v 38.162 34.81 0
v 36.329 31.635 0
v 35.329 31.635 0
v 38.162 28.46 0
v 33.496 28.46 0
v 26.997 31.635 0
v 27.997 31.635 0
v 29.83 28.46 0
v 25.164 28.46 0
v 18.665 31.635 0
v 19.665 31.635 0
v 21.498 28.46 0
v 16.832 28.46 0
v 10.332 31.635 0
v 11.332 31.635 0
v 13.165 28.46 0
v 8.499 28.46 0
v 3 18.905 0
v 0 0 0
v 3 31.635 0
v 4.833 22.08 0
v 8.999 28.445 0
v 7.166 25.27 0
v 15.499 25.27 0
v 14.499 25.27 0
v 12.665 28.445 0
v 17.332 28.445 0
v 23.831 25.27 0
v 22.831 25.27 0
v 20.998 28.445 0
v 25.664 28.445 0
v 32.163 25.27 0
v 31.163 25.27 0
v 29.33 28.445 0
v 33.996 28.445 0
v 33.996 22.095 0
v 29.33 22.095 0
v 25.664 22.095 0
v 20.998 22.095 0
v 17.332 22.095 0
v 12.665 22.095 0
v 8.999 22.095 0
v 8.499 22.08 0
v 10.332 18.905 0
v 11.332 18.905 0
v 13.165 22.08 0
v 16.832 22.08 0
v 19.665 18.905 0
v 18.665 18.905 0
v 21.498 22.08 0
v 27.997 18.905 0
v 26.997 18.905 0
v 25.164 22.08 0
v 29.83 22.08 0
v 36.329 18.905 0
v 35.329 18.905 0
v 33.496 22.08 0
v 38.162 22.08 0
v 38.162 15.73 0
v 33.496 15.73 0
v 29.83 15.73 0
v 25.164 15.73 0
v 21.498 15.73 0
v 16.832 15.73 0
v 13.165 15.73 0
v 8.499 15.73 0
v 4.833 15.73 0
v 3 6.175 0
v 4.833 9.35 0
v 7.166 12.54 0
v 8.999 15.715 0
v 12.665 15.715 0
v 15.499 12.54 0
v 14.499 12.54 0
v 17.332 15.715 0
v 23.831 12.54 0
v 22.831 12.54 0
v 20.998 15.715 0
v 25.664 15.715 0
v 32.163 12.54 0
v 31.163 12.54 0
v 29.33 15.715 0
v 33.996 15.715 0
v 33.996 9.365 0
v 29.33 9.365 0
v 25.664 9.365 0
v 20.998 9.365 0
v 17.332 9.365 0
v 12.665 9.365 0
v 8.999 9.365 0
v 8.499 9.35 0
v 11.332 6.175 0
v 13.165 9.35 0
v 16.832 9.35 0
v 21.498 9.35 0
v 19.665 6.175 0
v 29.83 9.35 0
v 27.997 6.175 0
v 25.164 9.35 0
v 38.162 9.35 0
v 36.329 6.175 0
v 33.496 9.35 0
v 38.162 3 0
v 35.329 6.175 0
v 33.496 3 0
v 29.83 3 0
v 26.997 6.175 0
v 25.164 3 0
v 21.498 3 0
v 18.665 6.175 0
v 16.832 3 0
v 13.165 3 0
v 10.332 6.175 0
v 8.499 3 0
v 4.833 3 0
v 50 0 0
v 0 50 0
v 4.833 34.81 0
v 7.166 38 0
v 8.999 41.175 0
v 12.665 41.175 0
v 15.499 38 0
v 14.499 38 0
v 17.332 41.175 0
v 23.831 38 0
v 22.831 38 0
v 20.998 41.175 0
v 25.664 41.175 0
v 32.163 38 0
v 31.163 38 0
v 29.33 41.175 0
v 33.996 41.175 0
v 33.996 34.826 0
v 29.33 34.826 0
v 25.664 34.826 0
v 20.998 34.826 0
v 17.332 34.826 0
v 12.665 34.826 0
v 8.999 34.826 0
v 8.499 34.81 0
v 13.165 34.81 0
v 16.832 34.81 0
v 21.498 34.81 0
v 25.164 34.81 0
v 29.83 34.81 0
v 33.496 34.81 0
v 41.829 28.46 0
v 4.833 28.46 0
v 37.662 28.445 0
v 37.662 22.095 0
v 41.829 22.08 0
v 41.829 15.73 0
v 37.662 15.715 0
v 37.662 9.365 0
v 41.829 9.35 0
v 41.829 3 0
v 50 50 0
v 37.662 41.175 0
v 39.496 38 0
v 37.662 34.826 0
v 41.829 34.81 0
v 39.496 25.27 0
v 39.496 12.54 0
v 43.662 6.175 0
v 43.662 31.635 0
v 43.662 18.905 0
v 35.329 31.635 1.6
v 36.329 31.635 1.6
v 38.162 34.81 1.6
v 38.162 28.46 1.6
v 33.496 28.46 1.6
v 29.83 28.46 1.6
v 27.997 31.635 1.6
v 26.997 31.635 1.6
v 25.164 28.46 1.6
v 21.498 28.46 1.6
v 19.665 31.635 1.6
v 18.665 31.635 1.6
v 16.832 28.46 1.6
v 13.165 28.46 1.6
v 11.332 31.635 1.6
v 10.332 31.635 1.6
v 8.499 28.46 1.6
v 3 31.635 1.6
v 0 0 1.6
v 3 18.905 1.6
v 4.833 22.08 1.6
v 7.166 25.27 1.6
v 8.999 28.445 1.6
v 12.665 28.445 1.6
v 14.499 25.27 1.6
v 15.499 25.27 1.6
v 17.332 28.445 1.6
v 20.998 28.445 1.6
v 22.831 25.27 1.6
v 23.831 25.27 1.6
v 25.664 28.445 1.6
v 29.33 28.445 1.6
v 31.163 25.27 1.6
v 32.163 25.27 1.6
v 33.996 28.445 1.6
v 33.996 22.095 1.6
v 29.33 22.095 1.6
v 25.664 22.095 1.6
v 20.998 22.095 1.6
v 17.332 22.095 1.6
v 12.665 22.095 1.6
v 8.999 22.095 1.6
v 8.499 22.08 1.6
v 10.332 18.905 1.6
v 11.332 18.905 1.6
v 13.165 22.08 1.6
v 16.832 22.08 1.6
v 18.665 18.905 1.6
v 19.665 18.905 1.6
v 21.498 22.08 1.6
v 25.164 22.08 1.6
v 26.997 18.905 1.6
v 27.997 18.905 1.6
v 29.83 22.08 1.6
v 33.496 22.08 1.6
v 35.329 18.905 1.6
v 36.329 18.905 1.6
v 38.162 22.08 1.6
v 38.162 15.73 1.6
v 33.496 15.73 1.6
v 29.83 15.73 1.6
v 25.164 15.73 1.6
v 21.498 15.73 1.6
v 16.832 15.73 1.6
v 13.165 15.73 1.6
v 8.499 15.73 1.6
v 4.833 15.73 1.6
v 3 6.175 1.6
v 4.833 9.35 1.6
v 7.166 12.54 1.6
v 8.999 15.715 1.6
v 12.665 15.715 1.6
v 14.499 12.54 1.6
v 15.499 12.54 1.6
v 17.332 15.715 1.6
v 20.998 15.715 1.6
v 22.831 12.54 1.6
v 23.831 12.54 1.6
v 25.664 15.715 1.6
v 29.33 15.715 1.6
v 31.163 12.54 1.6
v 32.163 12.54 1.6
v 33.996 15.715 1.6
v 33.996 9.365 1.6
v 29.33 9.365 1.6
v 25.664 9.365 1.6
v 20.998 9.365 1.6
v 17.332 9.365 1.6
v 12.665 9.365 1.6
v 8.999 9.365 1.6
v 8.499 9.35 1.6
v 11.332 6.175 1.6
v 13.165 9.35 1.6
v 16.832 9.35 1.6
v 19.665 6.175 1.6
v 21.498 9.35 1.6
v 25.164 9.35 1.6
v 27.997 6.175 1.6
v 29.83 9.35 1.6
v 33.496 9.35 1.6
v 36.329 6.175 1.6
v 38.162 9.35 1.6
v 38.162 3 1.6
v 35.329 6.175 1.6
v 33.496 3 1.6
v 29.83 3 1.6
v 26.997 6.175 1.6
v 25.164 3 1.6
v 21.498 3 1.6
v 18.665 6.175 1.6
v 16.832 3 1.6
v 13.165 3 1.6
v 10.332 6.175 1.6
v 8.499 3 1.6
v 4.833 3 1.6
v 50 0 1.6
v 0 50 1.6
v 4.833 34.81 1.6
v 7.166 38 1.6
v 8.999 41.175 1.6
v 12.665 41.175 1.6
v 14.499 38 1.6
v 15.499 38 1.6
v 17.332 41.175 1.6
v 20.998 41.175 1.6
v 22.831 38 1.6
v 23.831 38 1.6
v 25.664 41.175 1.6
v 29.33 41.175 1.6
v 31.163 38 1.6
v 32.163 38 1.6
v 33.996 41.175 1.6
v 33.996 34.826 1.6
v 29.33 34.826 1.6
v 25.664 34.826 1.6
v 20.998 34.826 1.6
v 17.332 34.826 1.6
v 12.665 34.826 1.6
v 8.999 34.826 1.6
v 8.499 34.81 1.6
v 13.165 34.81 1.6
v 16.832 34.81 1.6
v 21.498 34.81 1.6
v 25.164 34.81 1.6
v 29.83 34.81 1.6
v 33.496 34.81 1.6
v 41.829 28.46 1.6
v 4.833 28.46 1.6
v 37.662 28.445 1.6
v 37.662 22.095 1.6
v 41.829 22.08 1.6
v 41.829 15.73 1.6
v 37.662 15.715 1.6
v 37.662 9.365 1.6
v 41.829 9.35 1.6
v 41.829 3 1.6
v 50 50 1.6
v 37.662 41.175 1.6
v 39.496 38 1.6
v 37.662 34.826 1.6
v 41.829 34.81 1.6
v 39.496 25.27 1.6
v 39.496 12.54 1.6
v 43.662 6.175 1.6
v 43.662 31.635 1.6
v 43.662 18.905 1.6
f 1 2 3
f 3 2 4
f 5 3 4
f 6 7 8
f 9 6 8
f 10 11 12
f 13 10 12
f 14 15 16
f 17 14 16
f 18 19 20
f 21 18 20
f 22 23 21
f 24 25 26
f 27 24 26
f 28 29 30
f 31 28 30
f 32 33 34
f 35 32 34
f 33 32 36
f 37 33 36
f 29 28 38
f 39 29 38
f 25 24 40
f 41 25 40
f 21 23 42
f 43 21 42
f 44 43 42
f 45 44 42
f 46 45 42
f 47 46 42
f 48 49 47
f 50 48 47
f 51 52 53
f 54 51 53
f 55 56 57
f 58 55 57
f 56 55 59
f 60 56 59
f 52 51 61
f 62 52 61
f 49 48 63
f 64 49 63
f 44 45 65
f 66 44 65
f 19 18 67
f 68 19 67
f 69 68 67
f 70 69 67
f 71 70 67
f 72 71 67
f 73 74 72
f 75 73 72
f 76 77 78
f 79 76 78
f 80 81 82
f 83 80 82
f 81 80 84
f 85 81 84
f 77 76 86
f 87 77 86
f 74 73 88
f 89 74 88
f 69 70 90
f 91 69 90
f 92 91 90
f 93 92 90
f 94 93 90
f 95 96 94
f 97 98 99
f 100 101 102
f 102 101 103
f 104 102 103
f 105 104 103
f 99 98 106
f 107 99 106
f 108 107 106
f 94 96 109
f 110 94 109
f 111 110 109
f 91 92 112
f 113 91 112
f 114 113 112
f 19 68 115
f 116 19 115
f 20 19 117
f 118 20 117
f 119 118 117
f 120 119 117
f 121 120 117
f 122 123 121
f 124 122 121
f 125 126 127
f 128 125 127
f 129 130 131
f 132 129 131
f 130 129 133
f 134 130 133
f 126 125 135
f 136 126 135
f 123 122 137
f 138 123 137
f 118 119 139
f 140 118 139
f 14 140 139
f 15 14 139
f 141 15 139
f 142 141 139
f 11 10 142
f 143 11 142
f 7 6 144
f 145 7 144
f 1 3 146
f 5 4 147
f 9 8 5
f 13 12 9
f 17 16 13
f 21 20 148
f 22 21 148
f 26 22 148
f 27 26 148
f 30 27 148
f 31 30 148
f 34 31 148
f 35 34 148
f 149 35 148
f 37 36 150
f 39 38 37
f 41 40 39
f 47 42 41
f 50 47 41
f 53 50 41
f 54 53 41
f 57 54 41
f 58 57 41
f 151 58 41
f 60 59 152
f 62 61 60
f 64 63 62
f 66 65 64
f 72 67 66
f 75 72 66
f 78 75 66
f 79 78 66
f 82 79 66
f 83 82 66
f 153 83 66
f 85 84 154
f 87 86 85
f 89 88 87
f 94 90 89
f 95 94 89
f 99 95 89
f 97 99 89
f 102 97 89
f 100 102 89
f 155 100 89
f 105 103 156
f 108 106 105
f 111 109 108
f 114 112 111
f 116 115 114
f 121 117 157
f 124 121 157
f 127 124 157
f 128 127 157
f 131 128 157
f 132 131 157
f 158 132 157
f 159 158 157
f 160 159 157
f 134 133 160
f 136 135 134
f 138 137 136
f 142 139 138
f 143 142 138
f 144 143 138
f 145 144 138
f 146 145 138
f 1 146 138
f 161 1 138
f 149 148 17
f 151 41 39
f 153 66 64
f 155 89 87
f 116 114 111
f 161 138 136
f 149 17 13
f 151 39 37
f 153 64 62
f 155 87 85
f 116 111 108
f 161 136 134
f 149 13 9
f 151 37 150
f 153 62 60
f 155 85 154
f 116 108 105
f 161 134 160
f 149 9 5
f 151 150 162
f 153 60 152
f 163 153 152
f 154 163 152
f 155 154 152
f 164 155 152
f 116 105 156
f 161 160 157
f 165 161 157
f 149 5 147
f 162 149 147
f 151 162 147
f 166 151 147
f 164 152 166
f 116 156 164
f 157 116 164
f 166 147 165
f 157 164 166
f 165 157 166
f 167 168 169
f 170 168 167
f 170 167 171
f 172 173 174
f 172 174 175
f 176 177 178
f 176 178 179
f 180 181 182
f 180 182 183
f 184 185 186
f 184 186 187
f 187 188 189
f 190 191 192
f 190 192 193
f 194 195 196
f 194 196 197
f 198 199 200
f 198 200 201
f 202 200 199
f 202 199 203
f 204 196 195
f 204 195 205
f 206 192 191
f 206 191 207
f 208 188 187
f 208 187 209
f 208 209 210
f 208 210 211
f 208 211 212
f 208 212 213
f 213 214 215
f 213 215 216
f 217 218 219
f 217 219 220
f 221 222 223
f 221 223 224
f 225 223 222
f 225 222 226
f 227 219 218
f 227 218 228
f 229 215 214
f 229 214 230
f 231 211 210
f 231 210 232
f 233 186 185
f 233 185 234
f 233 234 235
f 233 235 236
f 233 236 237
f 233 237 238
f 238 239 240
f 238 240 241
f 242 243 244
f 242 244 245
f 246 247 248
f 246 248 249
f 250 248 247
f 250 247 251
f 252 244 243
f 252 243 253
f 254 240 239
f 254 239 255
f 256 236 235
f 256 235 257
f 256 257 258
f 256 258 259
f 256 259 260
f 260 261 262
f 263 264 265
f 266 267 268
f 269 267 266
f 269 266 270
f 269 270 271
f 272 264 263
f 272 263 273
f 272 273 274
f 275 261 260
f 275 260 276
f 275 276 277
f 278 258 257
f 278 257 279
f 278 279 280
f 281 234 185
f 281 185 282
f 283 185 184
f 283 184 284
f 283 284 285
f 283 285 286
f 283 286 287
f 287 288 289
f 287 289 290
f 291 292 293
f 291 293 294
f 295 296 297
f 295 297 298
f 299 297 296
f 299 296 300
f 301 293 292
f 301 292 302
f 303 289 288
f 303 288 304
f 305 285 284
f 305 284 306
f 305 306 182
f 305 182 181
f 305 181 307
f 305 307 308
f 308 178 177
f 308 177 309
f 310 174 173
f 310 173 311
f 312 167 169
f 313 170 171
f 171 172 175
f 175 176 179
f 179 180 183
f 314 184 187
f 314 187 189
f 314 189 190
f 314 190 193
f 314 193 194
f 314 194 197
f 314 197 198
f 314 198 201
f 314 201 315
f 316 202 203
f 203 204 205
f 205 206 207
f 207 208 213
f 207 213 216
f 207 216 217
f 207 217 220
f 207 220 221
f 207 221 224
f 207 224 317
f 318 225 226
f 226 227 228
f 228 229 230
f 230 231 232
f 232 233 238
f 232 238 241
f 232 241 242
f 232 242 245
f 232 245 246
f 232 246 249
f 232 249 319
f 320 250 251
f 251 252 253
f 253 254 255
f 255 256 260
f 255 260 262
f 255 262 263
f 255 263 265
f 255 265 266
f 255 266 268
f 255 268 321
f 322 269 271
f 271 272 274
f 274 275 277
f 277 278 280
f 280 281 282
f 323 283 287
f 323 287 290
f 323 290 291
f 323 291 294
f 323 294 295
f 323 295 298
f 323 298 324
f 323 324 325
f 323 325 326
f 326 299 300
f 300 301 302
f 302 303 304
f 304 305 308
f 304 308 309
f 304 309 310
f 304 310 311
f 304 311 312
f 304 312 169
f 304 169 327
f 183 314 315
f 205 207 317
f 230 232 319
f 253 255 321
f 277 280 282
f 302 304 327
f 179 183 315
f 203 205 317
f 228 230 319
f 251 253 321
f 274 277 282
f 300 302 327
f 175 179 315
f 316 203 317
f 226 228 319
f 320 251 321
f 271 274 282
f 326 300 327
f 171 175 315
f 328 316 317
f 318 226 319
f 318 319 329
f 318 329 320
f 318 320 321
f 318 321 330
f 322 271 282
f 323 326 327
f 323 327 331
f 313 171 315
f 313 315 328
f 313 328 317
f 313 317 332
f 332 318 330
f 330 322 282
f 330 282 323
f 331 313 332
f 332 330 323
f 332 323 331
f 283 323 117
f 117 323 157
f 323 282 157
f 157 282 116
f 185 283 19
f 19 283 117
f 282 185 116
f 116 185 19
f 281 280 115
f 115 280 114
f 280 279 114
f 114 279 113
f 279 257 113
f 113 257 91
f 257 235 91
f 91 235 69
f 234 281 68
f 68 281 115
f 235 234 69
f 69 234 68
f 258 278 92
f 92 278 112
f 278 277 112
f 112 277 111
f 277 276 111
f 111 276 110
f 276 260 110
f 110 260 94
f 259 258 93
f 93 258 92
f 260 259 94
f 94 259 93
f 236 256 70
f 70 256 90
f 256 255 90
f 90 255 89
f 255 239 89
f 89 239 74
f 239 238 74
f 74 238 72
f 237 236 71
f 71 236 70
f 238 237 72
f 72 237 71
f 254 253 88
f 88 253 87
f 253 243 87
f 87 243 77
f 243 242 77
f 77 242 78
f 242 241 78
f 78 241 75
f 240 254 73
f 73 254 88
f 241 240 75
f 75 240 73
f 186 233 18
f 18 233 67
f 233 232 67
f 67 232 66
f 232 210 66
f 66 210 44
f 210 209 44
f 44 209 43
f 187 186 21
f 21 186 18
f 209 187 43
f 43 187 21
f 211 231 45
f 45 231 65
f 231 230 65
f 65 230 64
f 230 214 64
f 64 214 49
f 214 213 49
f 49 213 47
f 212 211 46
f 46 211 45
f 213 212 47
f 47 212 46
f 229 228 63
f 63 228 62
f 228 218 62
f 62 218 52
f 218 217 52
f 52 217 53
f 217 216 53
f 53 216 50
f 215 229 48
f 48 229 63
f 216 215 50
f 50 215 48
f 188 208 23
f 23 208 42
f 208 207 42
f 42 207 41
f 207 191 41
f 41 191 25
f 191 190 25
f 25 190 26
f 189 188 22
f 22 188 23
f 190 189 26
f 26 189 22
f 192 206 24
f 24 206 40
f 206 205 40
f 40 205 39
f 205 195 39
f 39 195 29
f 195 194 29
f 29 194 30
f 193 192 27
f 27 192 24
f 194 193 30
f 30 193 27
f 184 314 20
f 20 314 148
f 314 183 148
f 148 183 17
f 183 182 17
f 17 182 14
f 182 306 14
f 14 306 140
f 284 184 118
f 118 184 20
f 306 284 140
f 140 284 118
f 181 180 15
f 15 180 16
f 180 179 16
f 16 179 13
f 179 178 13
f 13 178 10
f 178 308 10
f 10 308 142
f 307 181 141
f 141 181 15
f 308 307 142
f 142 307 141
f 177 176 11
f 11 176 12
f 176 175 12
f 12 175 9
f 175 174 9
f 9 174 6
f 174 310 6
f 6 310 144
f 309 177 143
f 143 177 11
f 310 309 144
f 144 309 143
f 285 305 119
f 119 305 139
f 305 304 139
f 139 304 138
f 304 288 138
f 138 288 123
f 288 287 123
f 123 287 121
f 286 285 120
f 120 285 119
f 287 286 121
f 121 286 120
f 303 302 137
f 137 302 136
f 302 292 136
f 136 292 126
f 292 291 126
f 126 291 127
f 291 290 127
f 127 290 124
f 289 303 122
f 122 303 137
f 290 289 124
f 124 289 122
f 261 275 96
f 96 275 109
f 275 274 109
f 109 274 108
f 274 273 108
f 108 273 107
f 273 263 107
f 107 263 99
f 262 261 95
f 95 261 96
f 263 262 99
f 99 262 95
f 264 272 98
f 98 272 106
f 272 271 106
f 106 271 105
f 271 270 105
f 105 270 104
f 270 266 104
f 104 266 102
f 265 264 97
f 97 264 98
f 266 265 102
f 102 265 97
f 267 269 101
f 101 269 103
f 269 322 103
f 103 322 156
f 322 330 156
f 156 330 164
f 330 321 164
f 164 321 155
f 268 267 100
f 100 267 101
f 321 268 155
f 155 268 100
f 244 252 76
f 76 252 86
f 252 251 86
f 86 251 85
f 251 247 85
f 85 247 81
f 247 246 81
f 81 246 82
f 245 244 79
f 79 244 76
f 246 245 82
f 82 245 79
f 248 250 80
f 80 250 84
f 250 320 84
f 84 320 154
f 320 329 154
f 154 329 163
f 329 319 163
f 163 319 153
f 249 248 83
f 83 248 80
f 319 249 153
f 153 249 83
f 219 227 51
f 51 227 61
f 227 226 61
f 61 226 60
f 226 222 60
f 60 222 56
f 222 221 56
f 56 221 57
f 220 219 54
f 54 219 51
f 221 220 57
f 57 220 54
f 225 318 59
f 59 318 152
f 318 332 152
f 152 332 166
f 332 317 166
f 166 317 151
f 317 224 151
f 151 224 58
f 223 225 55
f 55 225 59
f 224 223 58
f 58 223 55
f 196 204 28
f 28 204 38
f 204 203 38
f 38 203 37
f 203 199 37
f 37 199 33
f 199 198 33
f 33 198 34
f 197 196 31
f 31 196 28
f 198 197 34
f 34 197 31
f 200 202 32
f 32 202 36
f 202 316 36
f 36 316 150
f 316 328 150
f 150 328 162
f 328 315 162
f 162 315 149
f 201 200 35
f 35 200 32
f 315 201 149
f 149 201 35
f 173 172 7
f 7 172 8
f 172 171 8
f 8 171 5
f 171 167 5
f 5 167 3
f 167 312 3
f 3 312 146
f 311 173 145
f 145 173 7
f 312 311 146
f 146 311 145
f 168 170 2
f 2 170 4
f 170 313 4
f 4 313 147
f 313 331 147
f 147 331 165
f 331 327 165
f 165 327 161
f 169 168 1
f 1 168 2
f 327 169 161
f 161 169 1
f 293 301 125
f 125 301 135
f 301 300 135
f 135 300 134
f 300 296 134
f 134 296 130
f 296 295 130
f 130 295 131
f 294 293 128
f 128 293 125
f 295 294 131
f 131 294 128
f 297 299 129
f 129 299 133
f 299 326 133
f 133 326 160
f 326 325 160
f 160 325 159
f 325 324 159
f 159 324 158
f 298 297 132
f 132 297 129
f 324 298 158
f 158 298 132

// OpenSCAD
// HEX-1/4: 1/4 in hexagon (shape punch, realisation punched) NOMINAL size, measure before use
// hole: hexagon {"across_flats": 6.35}; inscribed 6.35 mm; 27 holes; open area 0.487; spec hash 7415b8889d72cd77
plate = 50.0; thickness = 1.6;
hole = [[3.6662, 0.0000], [1.8331, 3.1750], [-1.8331, 3.1750], [-3.6662, 0.0000], [-1.8331, -3.1750], [1.8331, -3.1750]];
centres = [[6.6662, 6.175], [14.9985, 6.175], [23.3309, 6.175], [31.6632, 6.175], [39.9956, 6.175], [10.8323, 12.5401], [19.1647, 12.5401], [27.497, 12.5401], [35.8294, 12.5401], [6.6662, 18.9052], [14.9985, 18.9052], [23.3309, 18.9052], [31.6632, 18.9052], [39.9956, 18.9052], [10.8323, 25.2703], [19.1647, 25.2703], [27.497, 25.2703], [35.8294, 25.2703], [6.6662, 31.6354], [14.9985, 31.6354], [23.3309, 31.6354], [31.6632, 31.6354], [39.9956, 31.6354], [10.8323, 38.0005], [19.1647, 38.0005], [27.497, 38.0005], [35.8294, 38.0005]];
difference() {
  cube([plate, plate, thickness]);
  for (c = centres) translate([c[0], c[1], -1]) linear_extrude(thickness + 2) polygon(hole);
}
